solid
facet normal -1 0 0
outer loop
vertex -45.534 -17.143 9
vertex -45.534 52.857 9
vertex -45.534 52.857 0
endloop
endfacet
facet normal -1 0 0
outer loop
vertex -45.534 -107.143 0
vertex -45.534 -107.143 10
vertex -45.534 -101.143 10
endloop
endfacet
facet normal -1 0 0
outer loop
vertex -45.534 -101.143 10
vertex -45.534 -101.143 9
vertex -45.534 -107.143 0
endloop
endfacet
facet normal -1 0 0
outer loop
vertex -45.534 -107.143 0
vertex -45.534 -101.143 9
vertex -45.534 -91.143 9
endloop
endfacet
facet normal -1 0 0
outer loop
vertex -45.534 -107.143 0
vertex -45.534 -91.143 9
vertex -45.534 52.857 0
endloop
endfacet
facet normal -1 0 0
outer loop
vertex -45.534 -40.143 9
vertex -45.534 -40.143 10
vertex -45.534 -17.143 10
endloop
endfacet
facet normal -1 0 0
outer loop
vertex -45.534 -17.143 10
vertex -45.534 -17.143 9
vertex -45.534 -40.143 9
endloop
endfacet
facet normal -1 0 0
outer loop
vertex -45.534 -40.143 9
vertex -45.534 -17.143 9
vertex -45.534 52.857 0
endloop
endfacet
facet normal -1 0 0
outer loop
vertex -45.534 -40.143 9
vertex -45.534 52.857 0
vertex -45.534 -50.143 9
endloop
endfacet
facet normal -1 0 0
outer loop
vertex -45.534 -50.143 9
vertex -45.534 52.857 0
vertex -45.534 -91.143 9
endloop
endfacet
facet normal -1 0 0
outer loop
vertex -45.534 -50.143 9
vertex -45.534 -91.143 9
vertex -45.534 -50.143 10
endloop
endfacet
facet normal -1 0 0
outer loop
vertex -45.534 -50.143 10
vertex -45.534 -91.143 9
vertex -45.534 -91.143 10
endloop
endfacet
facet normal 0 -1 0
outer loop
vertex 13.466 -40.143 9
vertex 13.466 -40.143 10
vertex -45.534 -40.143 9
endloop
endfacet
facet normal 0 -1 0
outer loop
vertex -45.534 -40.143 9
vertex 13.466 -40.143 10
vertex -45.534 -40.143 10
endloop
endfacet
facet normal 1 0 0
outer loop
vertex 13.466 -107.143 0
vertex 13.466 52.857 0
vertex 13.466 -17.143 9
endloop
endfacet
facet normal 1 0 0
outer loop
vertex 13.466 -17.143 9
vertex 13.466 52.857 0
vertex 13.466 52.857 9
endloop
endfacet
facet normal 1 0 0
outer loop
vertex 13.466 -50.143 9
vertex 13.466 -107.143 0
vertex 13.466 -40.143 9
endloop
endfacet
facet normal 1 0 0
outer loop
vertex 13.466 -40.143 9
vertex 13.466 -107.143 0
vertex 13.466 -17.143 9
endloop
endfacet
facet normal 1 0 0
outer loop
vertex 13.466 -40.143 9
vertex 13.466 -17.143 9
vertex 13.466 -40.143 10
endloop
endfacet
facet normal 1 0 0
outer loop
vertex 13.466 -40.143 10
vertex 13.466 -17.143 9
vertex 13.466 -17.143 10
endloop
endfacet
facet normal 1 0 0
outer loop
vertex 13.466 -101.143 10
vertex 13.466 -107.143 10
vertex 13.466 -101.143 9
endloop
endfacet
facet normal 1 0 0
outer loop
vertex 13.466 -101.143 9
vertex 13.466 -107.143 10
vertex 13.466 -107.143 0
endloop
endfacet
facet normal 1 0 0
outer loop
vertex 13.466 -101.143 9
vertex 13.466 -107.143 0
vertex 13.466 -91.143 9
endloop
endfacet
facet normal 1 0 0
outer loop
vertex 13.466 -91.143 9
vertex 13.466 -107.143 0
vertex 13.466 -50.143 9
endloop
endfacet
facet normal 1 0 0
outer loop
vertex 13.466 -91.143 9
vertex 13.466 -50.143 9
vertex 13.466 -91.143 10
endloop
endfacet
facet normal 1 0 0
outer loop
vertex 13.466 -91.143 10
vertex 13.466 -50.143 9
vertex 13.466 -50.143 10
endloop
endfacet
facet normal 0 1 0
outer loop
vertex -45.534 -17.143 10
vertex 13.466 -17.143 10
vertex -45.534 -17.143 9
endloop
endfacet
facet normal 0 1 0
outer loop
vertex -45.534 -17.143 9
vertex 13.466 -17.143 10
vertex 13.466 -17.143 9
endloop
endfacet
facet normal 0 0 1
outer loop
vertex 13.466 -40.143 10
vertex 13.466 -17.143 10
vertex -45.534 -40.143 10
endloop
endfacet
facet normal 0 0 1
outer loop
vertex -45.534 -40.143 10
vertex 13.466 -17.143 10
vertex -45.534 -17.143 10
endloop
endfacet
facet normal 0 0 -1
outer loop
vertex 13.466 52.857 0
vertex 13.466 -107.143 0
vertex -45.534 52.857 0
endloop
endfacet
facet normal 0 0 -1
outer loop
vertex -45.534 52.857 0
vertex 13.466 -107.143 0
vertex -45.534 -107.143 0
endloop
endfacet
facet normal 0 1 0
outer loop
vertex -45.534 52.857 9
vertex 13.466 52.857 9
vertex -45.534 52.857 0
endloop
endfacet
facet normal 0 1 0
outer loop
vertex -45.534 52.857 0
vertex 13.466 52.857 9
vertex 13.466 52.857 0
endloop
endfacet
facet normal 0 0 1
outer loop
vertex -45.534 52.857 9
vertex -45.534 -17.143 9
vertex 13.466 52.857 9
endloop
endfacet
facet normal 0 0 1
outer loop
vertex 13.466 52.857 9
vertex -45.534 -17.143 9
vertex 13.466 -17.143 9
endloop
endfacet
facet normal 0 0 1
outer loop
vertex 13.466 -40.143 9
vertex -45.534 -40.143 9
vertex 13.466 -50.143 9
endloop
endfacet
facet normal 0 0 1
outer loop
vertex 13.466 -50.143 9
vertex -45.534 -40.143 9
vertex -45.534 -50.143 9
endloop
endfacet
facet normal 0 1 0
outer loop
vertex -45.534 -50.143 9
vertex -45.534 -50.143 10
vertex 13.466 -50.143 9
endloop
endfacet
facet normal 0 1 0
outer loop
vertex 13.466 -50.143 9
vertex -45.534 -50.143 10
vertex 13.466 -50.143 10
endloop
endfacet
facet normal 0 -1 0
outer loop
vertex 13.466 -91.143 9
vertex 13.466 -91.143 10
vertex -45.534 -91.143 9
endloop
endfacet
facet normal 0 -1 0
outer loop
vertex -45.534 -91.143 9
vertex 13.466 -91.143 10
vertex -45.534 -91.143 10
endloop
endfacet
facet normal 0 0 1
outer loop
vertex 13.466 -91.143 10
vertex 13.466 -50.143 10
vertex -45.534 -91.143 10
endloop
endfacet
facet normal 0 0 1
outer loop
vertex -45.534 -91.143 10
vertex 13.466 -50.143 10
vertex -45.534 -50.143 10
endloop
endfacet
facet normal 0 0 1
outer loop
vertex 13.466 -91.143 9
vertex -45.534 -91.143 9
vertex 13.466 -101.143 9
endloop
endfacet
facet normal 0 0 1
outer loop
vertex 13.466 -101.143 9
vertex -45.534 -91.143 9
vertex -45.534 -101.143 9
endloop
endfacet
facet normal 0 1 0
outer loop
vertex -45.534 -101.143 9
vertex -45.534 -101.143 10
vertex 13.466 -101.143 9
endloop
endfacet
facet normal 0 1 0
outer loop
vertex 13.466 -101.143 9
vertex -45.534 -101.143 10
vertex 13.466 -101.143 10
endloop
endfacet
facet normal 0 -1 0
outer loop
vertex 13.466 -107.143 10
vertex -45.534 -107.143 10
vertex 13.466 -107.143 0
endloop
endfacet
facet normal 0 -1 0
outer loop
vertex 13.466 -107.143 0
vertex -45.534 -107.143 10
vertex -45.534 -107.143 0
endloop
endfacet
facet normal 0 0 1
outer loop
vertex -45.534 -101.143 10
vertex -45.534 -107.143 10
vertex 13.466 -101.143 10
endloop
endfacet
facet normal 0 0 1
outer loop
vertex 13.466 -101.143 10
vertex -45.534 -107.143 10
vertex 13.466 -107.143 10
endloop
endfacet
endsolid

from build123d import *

# Parameters (mm, degrees)
ESQUISSE1_W          = 59
ESQUISSE1_H          = 23
BOSS_EXTRU_4_DEPTH   = 10
ESQUISSE1_H_2        = 41
BOSS_EXTRU_4_2_DEPTH = 10
ESQUISSE1_H_3        = 6
BOSS_EXTRU_4_3_DEPTH = 10
ESQUISSE1_6_W        = 59
ESQUISSE1_6_H        = 70
ESQUISSE1_6_H_2      = 10
BOSS_EXTRU_5_DEPTH   = 9


with BuildPart() as part:
    # Esquisse1 → Boss.-Extru.4 (new body)
    with BuildSketch(Plane.XY):
        with Locations((-16.034238867, -28.643003421)):
            Rectangle(ESQUISSE1_W, ESQUISSE1_H)
    extrude(amount=BOSS_EXTRU_4_DEPTH)



with BuildPart() as body_2:
    # Esquisse1 → Boss.-Extru.4 2 (new body)
    with BuildSketch(Plane.XY):
        with Locations((-16.034238867, -70.643003421)):
            Rectangle(ESQUISSE1_W, ESQUISSE1_H_2)
    extrude(amount=BOSS_EXTRU_4_2_DEPTH)


with BuildPart() as body_3:
    # Esquisse1 → Boss.-Extru.4 3 (new body)
    with BuildSketch(Plane.XY):
        with Locations((-16.034238867, -104.143003421)):
            Rectangle(ESQUISSE1_W, ESQUISSE1_H_3)
    extrude(amount=BOSS_EXTRU_4_3_DEPTH)


with BuildPart() as part_1:
    add(part.part)

    add(body_2.part)  # Boss.-Extru.5 merges body 2

    add(body_3.part)  # Boss.-Extru.5 merges body 3
    # Esquisse1_6 → Boss.-Extru.5 (add)
    with BuildSketch(Plane.XY):
        with Locations((-16.034238867, 17.856996579)):
            Rectangle(ESQUISSE1_6_W, ESQUISSE1_6_H)
        with Locations((-16.034238867, -45.143003421)):
            Rectangle(ESQUISSE1_6_W, ESQUISSE1_6_H_2)
        with Locations((-16.034238867, -96.143003421)):
            Rectangle(ESQUISSE1_6_W, ESQUISSE1_6_H_2)
    extrude(amount=BOSS_EXTRU_5_DEPTH)


solid = part_1.part
